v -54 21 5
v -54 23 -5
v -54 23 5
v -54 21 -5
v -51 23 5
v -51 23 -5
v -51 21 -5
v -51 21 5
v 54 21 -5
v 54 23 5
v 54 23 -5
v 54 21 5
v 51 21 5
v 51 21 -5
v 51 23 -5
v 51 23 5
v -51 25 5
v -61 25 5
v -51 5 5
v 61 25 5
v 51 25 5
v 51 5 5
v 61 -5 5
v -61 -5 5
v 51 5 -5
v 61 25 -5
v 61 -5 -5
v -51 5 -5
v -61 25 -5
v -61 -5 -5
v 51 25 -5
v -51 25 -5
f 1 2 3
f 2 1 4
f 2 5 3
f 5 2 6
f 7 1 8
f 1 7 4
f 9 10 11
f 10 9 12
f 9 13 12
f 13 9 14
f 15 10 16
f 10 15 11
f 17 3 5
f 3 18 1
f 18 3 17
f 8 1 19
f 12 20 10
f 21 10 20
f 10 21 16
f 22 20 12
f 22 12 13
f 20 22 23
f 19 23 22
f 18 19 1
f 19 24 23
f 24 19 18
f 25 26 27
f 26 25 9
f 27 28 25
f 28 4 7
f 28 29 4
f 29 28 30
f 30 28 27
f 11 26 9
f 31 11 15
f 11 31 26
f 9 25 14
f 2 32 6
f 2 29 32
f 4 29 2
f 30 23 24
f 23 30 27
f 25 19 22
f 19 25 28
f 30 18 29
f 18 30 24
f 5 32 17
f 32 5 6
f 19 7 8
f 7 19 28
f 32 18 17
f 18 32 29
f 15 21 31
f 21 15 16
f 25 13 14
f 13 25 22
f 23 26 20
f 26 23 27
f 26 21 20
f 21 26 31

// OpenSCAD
difference(){
    union(){
        cube([116,10,10], center= true);
        translate([-56,10,0]){cube([10,30,10], center= true);}
        translate([ 56,10,0]){cube([10,30,10], center= true);}
    }
    union(){
        translate([-52,22,-1]){cube([4,2,14], center= true);}
        translate([ 52,22,-1]){cube([4,2,14], center= true);}
    }
}
